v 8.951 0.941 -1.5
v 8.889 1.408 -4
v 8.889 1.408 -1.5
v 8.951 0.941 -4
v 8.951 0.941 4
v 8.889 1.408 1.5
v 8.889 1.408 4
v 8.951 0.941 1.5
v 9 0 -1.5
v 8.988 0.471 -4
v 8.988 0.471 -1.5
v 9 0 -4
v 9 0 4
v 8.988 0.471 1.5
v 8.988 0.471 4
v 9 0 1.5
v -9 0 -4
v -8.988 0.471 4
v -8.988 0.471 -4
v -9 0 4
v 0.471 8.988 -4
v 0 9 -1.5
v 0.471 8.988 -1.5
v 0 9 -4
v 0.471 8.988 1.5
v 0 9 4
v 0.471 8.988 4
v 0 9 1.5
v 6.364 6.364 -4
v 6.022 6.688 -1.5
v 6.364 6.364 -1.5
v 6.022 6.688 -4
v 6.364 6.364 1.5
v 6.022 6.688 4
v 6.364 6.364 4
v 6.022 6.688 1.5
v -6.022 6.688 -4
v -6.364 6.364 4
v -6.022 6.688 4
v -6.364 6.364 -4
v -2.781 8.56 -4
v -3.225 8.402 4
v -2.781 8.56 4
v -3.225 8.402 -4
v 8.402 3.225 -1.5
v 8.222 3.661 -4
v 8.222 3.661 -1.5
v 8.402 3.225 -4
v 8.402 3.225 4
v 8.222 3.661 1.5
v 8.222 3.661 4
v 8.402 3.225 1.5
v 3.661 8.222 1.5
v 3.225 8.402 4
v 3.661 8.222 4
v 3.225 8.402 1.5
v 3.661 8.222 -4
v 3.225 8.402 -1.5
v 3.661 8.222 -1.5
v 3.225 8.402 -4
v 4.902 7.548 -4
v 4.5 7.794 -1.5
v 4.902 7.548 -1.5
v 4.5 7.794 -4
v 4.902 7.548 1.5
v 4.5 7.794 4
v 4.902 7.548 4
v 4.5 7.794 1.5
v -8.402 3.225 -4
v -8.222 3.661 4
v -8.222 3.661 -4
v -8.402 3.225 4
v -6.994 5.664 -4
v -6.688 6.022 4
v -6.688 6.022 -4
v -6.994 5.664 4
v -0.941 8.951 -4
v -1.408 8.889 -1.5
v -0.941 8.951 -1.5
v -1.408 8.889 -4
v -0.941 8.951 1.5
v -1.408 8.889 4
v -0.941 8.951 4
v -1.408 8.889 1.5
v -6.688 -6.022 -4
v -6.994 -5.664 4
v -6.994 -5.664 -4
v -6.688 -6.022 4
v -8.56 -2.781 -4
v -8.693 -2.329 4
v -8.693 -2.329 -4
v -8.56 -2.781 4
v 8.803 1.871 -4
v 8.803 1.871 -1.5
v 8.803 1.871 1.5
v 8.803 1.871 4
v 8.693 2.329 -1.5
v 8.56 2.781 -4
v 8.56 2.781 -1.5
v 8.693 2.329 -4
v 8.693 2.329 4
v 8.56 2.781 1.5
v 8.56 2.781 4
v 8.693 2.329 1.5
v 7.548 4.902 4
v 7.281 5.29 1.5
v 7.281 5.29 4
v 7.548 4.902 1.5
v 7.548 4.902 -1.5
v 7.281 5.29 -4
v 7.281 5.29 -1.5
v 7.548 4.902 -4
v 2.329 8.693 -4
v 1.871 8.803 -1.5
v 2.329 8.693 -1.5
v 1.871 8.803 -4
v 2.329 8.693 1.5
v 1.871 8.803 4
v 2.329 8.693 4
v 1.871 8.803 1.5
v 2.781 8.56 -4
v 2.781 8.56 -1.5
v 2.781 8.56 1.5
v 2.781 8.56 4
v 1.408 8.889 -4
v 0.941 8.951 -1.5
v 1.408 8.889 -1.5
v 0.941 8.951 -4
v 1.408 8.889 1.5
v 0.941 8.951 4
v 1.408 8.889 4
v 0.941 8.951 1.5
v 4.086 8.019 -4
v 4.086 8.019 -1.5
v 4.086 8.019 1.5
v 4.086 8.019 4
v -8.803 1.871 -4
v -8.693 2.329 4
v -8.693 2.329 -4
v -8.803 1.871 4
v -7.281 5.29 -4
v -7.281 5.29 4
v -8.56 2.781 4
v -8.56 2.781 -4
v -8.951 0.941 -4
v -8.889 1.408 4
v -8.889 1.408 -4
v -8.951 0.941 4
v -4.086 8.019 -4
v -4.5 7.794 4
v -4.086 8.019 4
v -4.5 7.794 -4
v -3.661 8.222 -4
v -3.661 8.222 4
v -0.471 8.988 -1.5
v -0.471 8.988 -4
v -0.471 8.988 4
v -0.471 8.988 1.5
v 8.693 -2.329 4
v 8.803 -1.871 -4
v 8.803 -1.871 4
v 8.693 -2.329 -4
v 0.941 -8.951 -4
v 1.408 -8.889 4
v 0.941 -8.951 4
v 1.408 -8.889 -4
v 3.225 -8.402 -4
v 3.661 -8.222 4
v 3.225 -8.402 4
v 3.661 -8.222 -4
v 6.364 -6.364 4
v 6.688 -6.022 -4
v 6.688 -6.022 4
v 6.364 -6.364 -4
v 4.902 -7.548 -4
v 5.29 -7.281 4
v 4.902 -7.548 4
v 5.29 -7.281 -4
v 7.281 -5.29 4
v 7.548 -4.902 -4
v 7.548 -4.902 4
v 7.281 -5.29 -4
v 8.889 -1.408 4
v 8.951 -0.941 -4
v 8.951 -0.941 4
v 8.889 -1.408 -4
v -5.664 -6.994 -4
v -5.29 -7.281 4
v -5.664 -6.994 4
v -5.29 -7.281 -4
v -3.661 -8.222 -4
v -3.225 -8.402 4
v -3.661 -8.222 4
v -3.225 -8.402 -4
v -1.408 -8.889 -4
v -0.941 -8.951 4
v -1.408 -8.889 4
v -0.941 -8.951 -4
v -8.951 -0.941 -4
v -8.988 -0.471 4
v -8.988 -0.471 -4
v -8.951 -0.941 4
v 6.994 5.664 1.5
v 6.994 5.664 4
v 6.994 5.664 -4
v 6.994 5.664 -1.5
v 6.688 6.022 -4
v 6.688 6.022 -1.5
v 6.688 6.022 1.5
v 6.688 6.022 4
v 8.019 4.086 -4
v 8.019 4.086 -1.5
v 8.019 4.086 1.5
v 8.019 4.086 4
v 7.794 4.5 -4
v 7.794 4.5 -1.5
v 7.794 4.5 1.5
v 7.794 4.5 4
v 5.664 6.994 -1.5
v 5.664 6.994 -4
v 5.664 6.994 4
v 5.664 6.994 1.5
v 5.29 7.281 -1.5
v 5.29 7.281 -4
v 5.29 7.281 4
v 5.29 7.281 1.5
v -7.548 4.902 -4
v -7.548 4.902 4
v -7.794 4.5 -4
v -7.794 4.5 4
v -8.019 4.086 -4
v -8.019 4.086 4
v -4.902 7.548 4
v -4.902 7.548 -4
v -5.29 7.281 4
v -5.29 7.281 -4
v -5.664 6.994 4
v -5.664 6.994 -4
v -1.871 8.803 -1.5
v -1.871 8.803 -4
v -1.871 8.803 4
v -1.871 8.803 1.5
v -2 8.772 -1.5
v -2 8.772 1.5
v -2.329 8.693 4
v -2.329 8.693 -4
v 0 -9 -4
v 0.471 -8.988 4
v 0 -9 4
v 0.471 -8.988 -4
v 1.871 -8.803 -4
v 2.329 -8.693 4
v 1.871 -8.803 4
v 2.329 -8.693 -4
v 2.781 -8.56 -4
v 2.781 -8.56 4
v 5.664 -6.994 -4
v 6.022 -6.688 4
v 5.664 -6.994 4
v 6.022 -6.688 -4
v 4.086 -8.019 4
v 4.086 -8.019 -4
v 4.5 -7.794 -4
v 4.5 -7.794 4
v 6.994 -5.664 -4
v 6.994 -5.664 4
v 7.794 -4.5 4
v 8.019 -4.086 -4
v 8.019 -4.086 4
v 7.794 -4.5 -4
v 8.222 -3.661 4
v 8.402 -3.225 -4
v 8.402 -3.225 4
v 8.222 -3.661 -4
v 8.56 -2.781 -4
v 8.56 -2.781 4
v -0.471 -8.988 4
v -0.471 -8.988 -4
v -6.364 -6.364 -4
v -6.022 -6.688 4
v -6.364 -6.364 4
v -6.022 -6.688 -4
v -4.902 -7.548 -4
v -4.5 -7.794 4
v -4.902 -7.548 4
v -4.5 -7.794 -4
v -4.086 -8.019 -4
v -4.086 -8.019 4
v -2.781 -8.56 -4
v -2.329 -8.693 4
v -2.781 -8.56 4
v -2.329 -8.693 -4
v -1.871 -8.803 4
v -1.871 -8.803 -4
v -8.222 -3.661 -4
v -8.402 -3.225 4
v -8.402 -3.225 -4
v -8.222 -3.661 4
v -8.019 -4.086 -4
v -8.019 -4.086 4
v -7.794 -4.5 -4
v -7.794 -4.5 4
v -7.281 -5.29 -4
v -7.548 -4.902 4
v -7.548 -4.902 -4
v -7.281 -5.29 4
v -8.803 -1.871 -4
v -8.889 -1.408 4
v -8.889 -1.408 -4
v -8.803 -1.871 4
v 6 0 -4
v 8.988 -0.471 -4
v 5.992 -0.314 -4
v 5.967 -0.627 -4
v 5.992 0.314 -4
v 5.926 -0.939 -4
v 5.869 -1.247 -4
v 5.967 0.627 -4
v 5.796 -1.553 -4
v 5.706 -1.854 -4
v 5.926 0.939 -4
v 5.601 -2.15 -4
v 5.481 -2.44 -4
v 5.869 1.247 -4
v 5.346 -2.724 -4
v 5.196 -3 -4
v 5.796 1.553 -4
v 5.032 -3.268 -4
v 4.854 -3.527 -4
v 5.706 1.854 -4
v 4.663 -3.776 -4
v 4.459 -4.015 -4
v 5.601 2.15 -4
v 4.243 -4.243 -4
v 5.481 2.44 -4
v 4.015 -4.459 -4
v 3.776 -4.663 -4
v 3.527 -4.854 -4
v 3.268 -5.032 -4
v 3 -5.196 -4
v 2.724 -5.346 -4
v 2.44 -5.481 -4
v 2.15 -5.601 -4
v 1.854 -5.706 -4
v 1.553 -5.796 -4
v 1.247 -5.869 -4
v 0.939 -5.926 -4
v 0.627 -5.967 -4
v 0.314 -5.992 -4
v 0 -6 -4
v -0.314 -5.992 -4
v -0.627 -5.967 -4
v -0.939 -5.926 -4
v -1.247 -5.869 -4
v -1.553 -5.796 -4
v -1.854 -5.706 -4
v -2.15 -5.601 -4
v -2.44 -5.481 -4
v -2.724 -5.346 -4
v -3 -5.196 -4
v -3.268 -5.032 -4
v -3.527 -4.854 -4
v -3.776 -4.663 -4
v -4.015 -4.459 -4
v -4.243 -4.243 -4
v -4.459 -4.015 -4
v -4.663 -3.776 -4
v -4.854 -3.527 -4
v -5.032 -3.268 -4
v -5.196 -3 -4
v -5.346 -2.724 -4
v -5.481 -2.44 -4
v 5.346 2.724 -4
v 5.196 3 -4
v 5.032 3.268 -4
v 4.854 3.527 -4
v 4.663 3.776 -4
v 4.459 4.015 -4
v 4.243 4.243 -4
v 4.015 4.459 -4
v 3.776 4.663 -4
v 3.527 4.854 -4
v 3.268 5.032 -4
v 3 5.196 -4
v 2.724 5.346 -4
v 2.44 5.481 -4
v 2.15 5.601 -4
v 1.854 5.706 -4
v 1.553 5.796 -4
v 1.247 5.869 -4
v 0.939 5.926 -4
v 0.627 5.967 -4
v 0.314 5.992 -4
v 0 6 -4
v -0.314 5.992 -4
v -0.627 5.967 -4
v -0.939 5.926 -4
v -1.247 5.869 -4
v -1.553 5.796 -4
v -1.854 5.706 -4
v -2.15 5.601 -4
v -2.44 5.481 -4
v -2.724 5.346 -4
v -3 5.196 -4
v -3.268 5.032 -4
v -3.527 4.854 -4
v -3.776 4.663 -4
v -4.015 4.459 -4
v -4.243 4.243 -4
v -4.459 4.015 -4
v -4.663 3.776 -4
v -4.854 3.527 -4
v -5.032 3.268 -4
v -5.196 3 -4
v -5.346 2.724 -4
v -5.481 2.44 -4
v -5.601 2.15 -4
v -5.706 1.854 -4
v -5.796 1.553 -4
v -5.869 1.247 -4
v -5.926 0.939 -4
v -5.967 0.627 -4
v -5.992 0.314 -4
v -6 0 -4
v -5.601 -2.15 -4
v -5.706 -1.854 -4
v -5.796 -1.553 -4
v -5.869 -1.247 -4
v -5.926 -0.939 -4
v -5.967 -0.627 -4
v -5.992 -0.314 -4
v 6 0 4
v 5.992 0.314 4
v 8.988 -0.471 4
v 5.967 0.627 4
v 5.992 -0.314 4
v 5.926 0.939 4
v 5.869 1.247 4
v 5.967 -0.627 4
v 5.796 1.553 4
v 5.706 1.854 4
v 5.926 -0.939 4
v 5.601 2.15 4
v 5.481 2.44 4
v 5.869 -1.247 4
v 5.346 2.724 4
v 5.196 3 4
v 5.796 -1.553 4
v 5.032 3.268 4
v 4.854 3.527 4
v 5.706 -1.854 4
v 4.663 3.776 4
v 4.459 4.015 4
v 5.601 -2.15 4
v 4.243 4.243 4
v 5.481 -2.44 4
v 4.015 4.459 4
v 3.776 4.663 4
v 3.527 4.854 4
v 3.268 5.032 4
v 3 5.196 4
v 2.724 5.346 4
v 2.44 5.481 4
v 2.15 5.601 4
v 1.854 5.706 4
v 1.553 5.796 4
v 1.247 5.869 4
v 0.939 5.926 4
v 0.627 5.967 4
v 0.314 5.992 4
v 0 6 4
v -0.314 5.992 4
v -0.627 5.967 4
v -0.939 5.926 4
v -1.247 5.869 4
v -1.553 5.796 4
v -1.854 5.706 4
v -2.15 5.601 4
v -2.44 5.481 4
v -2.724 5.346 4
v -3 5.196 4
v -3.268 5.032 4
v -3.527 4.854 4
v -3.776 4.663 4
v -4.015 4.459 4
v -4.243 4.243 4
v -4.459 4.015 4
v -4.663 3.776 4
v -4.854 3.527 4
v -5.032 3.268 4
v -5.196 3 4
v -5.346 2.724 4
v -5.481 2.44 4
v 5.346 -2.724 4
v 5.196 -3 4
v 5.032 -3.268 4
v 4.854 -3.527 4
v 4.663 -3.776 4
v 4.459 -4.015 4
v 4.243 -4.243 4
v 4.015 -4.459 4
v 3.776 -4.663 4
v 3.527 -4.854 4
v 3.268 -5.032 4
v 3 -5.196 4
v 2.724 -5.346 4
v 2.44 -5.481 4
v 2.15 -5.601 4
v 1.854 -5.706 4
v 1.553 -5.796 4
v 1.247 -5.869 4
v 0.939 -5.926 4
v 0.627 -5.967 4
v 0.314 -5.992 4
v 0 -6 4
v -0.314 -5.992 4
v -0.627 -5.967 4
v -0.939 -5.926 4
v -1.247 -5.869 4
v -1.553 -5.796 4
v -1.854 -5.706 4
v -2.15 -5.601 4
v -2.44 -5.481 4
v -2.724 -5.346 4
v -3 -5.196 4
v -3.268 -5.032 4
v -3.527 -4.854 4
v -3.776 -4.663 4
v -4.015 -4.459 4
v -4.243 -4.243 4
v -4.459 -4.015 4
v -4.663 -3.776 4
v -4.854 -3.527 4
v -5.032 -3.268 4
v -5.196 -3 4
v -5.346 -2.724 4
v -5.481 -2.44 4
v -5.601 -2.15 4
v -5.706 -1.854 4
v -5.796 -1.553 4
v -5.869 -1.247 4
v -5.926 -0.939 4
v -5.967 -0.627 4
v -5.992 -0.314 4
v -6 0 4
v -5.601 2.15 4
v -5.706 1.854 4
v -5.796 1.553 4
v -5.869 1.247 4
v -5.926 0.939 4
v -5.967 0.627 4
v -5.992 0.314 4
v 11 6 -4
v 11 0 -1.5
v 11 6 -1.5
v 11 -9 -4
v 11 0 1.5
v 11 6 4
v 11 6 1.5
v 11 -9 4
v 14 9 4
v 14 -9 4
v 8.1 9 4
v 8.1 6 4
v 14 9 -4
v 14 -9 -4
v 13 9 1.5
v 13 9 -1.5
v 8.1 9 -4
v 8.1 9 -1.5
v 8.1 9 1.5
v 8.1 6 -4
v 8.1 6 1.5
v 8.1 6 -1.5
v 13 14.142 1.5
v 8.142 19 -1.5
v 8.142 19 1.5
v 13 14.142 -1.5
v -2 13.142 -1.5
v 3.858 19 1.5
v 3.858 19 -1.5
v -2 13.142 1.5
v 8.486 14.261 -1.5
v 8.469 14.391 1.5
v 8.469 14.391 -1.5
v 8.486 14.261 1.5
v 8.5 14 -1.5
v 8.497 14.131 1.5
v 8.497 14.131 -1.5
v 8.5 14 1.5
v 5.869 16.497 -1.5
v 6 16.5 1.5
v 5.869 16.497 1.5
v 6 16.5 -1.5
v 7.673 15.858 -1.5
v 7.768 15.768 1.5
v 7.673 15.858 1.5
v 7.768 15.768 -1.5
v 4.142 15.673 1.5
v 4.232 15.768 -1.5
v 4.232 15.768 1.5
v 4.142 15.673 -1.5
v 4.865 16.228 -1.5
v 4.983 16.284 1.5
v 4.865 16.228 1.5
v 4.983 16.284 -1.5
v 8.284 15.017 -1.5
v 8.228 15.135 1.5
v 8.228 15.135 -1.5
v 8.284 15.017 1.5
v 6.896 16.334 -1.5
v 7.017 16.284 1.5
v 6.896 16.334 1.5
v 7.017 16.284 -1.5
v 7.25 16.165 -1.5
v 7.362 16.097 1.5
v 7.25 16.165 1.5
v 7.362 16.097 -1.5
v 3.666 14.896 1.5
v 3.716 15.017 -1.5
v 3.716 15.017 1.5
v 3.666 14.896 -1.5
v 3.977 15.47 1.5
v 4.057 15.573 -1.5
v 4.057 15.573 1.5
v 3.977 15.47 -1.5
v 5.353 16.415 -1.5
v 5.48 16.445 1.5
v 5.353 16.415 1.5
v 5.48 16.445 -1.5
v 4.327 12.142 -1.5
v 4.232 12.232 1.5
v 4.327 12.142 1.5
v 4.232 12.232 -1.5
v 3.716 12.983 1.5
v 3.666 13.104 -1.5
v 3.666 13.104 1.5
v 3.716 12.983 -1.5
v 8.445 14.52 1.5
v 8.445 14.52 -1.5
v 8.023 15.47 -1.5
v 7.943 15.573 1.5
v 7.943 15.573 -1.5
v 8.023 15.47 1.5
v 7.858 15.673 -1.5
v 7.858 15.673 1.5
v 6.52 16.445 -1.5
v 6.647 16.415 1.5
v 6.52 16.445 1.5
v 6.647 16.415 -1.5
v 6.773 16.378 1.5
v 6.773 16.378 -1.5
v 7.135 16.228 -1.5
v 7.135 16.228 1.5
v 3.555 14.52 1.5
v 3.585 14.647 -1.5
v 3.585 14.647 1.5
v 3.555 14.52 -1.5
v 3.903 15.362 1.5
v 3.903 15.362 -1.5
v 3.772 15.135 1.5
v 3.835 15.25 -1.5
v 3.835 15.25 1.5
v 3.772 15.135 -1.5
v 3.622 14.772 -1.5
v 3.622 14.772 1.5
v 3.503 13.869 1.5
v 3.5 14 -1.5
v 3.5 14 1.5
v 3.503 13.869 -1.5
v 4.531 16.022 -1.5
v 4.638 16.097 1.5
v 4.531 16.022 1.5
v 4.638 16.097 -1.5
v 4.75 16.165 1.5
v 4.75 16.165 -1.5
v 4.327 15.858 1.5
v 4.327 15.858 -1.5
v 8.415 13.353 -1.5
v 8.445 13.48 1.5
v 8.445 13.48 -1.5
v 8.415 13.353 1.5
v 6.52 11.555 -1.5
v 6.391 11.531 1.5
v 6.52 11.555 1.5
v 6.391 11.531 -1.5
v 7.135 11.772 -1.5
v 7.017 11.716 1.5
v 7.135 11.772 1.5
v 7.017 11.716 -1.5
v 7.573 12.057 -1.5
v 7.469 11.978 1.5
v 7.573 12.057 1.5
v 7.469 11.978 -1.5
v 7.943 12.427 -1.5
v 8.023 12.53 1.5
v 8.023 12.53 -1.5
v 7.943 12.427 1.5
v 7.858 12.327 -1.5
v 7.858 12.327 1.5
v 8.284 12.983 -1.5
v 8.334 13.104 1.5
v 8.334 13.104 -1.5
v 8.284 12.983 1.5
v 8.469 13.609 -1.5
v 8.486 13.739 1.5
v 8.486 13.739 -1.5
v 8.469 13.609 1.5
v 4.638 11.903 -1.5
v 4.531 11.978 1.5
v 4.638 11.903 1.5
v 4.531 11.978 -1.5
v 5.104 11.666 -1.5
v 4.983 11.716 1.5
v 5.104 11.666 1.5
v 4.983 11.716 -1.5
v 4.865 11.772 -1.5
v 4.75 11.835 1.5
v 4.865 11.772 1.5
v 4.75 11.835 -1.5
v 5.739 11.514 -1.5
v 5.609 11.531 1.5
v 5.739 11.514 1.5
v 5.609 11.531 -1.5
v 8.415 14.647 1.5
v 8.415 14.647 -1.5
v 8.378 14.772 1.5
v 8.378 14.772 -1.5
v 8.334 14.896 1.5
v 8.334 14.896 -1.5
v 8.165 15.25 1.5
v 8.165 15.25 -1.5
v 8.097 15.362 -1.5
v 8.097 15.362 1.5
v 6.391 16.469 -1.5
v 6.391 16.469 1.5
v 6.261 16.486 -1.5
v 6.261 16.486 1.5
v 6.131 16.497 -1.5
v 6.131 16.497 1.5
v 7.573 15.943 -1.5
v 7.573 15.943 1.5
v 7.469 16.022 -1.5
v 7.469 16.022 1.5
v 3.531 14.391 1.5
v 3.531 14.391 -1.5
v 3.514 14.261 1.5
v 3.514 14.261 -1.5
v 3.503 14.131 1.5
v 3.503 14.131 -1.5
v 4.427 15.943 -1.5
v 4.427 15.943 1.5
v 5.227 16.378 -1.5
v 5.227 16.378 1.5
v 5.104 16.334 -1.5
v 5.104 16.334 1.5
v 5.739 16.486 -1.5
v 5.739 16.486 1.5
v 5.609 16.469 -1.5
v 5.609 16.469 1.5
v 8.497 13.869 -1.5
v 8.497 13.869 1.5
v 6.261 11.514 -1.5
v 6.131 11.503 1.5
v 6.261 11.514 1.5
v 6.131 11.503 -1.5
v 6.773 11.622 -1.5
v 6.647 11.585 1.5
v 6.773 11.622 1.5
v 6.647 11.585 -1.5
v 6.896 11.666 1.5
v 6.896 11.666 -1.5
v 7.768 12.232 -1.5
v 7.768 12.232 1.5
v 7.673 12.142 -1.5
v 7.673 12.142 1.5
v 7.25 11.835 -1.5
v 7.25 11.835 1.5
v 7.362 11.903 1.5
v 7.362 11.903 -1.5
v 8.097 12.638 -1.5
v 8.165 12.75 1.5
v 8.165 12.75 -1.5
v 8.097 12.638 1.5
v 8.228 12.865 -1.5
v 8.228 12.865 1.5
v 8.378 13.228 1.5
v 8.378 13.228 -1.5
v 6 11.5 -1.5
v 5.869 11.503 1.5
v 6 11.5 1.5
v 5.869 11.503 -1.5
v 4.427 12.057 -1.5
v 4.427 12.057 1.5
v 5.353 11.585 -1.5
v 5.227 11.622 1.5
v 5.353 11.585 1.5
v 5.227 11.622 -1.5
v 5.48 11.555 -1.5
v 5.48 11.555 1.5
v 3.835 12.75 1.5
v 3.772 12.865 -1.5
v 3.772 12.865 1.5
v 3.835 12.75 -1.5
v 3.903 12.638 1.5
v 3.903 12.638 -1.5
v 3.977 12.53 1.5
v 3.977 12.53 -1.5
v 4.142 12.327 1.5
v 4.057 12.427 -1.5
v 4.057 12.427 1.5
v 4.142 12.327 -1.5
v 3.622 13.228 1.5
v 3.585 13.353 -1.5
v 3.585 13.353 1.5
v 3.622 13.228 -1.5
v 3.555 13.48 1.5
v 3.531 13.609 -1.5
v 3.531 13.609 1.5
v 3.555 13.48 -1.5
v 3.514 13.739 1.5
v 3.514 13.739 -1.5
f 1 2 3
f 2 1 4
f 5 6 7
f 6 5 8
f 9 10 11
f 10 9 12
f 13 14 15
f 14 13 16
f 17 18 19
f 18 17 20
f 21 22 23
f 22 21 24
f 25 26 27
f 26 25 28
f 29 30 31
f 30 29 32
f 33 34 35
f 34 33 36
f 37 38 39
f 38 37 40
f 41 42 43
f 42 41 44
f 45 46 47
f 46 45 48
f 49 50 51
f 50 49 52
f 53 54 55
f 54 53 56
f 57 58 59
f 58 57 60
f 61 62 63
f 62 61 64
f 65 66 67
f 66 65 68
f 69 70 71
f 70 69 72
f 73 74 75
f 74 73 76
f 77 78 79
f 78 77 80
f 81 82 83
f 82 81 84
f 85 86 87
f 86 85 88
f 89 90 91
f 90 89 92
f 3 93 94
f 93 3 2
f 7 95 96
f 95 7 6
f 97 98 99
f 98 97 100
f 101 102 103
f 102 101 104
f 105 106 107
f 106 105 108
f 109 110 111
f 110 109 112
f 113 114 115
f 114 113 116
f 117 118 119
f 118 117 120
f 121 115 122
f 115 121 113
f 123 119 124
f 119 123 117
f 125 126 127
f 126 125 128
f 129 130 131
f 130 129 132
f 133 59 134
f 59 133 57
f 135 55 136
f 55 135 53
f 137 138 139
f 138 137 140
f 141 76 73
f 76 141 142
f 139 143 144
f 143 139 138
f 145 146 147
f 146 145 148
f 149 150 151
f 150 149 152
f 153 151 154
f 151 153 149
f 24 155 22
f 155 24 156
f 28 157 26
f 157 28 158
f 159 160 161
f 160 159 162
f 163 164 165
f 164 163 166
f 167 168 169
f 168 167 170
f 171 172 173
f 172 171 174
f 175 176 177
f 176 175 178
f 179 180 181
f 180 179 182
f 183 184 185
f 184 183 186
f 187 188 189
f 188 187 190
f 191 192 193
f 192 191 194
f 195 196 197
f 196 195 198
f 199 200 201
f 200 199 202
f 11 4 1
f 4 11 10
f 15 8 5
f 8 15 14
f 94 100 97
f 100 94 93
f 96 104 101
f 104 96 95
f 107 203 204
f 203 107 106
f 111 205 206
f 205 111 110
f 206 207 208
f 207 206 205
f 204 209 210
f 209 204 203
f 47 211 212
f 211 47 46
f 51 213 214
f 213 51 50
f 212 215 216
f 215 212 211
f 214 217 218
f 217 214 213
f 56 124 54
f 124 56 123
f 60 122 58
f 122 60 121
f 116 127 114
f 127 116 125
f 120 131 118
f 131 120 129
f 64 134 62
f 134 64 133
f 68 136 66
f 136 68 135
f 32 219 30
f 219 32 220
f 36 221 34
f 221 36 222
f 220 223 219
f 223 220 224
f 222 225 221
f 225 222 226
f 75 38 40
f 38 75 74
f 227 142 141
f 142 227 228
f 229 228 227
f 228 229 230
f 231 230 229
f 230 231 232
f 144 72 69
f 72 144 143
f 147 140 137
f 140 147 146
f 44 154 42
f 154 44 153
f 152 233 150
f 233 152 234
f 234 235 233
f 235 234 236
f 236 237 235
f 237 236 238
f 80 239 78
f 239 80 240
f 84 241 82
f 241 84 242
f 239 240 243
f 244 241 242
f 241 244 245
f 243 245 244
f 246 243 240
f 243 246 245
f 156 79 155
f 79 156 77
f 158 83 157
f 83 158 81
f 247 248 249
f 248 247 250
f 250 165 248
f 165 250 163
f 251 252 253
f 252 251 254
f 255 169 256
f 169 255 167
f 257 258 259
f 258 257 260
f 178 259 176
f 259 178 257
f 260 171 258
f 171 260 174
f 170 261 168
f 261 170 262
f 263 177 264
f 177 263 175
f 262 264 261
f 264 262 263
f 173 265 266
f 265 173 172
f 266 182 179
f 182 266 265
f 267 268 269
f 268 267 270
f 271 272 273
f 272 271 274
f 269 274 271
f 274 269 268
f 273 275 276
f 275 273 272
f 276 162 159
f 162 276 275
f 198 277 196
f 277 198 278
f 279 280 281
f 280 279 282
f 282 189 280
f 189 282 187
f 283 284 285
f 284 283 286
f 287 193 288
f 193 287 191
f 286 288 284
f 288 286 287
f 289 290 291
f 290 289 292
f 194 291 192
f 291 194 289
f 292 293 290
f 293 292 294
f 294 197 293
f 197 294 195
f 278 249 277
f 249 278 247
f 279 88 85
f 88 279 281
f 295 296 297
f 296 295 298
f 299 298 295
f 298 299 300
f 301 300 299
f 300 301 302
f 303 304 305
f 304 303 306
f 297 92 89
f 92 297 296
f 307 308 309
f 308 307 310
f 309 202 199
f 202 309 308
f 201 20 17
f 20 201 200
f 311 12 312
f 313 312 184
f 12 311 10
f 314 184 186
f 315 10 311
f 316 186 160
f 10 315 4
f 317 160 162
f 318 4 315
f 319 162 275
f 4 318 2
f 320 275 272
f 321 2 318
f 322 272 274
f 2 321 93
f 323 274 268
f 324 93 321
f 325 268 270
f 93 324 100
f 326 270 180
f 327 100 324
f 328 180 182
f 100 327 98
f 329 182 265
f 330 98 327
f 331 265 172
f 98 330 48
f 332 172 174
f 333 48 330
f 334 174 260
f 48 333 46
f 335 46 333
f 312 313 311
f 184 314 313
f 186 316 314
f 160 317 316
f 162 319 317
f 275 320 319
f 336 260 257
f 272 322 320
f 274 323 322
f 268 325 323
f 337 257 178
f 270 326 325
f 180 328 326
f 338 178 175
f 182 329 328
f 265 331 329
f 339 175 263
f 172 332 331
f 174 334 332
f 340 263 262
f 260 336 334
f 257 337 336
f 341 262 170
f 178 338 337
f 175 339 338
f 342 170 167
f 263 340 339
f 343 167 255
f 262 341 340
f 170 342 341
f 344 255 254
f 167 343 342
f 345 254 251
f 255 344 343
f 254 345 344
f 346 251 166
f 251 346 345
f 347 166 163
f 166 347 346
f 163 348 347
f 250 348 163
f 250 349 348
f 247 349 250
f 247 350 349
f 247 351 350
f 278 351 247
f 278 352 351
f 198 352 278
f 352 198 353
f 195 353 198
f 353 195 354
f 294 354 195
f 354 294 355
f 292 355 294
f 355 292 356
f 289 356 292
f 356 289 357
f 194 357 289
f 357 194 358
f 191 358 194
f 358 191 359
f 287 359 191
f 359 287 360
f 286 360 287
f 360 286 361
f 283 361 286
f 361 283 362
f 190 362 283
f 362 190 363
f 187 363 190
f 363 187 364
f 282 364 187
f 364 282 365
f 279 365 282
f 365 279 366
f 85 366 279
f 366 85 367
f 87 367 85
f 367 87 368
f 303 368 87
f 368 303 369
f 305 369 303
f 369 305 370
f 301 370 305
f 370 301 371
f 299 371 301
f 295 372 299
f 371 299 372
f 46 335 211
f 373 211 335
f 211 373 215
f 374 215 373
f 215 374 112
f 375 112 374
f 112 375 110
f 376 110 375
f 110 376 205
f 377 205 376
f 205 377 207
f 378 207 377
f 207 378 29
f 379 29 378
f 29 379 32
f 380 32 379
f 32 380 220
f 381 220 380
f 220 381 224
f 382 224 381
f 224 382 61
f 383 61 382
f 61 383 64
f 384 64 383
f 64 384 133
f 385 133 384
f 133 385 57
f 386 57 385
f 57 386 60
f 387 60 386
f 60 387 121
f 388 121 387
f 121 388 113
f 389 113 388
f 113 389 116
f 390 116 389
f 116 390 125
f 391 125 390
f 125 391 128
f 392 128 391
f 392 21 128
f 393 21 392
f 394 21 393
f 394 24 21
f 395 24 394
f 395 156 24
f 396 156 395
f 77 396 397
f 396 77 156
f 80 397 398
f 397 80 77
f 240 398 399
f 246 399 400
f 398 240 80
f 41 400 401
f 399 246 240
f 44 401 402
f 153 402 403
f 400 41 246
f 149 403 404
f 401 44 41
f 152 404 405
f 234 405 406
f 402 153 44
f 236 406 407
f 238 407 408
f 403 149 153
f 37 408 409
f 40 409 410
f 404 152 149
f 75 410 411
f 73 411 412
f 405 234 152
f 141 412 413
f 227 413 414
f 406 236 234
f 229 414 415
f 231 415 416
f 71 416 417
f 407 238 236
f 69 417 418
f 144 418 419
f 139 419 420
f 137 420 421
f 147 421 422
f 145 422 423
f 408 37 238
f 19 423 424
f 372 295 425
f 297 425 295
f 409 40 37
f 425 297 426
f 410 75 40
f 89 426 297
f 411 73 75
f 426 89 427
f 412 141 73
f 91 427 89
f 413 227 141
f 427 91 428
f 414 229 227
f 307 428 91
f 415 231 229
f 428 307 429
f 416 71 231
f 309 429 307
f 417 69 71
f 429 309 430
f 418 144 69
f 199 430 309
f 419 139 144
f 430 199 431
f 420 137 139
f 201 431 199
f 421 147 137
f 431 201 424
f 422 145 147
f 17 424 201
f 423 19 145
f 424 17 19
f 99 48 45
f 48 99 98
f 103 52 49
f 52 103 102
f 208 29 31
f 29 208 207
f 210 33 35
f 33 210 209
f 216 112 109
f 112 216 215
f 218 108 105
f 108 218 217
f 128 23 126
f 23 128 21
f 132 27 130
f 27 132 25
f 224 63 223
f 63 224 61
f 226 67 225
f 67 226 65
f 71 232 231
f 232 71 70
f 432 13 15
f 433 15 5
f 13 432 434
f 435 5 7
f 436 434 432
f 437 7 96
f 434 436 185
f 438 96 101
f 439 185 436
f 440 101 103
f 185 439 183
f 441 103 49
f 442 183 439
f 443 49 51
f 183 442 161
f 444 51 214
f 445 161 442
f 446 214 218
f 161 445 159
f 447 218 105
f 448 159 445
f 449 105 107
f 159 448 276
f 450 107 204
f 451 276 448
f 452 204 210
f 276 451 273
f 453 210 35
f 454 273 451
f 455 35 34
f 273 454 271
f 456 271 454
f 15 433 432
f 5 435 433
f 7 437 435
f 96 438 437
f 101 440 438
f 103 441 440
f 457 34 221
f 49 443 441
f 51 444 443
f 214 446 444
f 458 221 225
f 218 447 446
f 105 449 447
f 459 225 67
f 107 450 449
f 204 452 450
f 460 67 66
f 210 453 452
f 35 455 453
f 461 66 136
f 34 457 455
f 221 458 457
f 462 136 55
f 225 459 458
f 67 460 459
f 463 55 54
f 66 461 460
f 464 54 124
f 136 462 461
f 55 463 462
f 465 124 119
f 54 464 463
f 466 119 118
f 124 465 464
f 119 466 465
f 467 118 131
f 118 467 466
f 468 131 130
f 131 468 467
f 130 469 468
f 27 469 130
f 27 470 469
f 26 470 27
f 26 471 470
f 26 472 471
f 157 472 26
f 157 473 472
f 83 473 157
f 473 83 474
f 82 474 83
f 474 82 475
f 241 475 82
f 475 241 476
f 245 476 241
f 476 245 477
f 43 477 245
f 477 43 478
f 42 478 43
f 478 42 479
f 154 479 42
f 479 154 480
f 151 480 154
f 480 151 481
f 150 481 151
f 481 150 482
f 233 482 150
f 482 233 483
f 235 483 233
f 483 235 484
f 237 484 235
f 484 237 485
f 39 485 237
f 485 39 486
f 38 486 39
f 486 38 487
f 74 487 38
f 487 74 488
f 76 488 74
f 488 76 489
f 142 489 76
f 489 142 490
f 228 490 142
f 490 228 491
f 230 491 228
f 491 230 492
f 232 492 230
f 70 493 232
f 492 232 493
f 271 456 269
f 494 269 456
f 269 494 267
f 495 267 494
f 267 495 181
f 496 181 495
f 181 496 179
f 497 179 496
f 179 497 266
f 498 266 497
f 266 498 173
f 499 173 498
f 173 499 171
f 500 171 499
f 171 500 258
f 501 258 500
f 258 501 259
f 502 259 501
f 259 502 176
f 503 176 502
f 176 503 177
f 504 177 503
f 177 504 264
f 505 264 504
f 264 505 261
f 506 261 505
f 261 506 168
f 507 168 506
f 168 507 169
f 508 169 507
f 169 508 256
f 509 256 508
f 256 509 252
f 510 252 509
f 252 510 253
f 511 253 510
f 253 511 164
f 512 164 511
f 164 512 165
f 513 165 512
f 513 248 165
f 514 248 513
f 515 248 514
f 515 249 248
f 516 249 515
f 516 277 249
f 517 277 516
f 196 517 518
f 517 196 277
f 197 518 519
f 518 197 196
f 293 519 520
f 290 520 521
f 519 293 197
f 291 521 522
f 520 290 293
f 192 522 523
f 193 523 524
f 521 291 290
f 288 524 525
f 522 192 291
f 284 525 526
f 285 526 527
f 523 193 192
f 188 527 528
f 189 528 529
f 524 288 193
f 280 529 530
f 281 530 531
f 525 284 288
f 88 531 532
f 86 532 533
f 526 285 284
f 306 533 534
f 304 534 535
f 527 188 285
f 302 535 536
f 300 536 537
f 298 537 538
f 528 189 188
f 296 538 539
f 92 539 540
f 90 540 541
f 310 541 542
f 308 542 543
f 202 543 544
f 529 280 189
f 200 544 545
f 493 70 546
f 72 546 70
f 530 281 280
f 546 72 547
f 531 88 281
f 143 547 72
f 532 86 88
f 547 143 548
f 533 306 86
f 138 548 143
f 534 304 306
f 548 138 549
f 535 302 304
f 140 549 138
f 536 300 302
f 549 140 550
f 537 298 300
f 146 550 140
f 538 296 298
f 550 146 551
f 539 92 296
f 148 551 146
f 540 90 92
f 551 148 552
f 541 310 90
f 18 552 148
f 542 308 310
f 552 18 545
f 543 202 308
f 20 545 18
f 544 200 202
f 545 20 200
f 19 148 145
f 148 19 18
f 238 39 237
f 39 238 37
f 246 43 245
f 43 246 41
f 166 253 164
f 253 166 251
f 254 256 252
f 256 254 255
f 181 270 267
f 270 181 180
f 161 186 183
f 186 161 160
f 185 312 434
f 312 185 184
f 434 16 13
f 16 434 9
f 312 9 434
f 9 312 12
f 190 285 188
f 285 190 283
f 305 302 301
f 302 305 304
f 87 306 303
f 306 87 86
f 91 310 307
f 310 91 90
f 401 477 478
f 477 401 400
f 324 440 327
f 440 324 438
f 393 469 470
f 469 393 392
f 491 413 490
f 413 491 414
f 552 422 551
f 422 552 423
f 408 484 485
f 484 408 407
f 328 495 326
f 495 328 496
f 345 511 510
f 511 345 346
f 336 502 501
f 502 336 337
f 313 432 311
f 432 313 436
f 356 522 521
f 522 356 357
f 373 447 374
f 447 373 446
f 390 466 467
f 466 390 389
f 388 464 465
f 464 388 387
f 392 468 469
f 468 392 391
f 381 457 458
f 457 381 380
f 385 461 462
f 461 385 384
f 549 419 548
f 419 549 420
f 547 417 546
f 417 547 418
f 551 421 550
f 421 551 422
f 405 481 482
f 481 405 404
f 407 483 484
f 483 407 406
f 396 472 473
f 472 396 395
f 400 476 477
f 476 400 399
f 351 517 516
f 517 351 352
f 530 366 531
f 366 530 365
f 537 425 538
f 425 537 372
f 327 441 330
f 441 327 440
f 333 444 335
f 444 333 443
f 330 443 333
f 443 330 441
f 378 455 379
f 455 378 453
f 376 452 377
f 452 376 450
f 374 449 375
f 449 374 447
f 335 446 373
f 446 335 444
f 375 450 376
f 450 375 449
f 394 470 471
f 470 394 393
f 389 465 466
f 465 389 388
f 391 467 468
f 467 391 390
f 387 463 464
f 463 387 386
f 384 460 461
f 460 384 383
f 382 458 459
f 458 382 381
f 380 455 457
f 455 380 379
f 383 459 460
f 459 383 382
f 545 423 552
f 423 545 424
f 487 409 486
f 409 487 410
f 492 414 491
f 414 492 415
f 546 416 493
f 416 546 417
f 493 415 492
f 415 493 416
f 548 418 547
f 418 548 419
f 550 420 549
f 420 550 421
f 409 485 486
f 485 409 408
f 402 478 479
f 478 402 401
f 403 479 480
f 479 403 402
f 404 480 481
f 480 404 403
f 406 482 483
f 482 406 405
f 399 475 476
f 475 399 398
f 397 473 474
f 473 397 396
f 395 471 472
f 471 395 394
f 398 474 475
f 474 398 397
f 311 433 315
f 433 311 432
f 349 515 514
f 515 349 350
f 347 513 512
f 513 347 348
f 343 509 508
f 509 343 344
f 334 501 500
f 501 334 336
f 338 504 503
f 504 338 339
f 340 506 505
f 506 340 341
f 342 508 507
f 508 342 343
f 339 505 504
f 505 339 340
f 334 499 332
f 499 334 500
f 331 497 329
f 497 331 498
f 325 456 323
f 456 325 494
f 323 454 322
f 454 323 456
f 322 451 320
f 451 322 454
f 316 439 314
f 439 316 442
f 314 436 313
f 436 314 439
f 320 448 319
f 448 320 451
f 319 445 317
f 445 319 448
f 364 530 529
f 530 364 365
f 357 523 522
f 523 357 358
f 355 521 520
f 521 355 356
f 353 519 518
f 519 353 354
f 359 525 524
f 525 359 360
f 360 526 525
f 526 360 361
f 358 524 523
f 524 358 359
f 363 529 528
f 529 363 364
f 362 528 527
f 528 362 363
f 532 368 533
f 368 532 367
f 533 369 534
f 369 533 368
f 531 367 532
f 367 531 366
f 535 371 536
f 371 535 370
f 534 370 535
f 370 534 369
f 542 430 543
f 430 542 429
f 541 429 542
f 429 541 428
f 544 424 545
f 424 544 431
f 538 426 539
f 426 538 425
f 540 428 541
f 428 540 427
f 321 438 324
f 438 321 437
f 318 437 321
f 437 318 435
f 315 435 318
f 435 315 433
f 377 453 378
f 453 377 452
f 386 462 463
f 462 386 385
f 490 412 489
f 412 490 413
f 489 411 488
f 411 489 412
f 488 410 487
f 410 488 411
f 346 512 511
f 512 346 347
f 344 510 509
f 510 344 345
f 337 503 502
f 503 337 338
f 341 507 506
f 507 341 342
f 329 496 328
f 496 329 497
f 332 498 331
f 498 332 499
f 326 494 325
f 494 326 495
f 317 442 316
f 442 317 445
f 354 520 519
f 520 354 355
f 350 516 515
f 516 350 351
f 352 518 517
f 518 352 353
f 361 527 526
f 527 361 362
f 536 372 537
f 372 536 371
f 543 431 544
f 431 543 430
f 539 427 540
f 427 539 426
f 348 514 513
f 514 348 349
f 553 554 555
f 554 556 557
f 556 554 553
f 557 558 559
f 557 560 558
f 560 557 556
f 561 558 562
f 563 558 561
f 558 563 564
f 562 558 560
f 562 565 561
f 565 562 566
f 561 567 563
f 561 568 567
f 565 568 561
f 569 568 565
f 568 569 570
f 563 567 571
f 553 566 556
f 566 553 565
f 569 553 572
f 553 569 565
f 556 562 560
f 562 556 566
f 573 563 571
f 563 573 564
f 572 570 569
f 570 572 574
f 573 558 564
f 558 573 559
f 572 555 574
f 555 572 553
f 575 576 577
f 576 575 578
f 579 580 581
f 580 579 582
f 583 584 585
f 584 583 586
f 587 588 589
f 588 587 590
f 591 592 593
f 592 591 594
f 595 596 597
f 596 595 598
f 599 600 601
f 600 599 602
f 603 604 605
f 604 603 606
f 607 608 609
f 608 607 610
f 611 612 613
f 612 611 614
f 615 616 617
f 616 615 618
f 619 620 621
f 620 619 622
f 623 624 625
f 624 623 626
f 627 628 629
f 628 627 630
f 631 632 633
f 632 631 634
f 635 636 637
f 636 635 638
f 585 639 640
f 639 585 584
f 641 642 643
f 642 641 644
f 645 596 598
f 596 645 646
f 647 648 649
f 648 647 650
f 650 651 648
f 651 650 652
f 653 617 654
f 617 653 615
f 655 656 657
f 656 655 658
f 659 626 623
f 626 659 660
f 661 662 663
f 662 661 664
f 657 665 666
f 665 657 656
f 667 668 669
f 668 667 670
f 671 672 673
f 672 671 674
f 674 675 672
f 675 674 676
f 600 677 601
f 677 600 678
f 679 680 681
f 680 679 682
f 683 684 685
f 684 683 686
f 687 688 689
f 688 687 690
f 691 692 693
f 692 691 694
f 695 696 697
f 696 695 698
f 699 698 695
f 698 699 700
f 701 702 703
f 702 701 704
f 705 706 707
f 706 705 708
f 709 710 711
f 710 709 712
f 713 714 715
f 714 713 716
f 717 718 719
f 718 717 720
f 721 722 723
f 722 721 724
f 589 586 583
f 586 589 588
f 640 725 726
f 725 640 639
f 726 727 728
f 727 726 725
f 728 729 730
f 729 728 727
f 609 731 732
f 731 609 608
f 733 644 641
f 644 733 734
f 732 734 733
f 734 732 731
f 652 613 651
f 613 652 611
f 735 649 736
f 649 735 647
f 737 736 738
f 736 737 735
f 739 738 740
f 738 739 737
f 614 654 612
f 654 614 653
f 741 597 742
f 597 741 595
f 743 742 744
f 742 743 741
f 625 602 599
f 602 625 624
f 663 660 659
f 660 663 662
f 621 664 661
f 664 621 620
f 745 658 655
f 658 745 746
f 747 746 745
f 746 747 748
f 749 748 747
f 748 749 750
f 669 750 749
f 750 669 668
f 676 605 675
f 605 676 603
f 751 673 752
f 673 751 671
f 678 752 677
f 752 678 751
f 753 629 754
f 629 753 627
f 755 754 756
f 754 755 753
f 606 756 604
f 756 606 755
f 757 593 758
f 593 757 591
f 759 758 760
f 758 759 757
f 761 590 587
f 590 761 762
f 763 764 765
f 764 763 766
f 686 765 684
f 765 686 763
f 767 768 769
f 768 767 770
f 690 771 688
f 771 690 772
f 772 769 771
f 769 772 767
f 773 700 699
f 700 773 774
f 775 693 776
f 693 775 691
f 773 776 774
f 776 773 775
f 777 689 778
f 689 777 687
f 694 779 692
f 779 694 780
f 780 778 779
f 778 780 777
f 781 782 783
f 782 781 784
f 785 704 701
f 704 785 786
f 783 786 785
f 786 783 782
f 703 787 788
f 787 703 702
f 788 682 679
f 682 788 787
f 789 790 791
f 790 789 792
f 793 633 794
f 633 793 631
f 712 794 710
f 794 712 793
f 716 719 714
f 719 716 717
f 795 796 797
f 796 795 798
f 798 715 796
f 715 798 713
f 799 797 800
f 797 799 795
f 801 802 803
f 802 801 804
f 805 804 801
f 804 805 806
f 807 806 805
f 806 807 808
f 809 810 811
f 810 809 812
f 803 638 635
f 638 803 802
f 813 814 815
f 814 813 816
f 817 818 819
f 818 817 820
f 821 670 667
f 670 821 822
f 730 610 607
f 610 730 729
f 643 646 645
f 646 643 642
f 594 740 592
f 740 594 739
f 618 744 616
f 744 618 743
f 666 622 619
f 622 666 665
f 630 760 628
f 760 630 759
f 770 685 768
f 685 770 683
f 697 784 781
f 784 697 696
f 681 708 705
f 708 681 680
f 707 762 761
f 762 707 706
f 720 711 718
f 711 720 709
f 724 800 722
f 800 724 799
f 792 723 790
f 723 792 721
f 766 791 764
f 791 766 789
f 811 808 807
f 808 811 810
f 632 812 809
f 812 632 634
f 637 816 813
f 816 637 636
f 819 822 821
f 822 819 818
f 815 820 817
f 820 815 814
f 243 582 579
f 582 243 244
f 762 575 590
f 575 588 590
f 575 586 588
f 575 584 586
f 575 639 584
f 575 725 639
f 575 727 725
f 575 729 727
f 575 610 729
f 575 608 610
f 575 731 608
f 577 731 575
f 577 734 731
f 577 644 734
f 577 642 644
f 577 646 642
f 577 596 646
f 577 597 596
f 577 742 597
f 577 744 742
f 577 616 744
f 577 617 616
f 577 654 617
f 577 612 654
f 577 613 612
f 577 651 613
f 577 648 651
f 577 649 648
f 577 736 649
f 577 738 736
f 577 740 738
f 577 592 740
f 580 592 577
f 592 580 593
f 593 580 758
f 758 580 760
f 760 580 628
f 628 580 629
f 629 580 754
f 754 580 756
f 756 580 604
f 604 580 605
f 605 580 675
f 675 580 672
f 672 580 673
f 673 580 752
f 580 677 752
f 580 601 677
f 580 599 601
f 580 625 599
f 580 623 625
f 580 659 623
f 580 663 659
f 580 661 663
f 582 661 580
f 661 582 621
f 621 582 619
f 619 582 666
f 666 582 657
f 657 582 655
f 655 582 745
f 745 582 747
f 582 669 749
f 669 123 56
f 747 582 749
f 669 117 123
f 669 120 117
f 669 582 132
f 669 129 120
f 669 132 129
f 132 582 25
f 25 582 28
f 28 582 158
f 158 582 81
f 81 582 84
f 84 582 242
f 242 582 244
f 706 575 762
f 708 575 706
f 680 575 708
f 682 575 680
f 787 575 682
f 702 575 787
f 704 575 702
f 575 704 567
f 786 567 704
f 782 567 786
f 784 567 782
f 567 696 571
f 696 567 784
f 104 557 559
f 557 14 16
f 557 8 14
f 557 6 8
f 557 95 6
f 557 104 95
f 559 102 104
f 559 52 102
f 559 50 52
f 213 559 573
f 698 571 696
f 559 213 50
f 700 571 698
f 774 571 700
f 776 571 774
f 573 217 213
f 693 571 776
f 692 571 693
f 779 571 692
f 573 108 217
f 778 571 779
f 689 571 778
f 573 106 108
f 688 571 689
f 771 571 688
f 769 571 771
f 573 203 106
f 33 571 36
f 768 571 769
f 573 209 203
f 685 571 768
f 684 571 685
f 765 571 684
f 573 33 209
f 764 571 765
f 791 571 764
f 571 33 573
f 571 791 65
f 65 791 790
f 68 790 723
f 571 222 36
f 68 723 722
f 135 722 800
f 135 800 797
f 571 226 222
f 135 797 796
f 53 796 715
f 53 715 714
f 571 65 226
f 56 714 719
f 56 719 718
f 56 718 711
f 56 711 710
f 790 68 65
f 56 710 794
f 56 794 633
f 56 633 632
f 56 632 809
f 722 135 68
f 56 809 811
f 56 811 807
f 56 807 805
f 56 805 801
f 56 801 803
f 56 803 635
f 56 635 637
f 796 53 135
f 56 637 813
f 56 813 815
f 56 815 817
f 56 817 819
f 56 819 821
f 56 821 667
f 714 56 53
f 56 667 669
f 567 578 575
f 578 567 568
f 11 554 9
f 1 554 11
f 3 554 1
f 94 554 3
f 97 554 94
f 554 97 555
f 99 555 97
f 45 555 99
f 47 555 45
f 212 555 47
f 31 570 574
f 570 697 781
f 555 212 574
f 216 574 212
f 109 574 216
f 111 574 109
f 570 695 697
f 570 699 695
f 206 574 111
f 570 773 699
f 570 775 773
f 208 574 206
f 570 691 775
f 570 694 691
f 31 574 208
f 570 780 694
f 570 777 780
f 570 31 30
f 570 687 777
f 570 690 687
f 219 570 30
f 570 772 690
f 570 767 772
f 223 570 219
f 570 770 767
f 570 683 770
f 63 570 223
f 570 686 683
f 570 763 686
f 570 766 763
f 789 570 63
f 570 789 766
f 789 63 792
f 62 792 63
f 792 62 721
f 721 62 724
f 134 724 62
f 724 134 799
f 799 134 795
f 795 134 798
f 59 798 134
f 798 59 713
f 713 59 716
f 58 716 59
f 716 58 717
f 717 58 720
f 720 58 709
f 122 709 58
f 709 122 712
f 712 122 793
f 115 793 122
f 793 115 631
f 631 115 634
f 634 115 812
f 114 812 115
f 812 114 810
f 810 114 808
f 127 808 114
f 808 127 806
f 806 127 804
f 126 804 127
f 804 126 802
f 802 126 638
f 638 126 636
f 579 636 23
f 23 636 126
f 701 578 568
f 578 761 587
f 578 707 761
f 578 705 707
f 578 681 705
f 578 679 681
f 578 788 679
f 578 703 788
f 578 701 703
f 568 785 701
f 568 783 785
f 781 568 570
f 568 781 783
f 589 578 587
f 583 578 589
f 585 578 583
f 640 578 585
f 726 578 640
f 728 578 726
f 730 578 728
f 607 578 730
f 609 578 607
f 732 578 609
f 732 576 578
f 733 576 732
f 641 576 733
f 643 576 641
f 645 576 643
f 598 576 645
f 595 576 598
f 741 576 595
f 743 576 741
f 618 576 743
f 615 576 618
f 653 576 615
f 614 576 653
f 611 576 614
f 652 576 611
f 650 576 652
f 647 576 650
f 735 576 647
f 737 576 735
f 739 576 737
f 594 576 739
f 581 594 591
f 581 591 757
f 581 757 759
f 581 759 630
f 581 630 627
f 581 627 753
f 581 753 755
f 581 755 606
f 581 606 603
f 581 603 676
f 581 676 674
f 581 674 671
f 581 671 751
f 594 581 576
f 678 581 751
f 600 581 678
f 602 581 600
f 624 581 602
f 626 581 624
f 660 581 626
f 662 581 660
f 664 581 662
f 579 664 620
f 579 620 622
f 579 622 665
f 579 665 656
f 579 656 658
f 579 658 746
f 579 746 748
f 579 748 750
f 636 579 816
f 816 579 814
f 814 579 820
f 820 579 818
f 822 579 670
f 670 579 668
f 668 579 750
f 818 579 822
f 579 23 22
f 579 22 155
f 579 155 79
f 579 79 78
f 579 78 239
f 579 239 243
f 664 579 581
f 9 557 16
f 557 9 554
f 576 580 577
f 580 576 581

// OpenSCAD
HEIGHT=8;
$fn = 120;
S = 20;

color([.5,1,1])
translate([0,0,-HEIGHT/2])
difference() {
    cylinder(d=18, h=HEIGHT);
    translate([0,0,-1])
        cylinder(d=12, h=HEIGHT+2);
}

color([.5,1,1])
translate([11,0,-HEIGHT/2])
union() {
    translate([0,-9,0])
    cube([3,18,HEIGHT]);
    translate([-2.9,6,0])
    cube([3,3,HEIGHT]);
}

color([.5,1,1])
difference() {
    translate([-2,0,-1.5])
    cube([15,19,3]);
    union() {
        translate([0,0,-HEIGHT/2-1])
        cylinder(d=15, h=HEIGHT+2);
        translate([6,14,-HEIGHT/2-1])
        cylinder(d=5, h=HEIGHT+2);
        difference() {
            translate([-S,-S,-S])
            cube([2*S,2*S,2*S]);
            translate([6,7,0])
            rotate([0,0,45])
            translate([-S/2,-S/2,-HEIGHT/2])
            cube([S,S,HEIGHT]);
        }
    }
};
